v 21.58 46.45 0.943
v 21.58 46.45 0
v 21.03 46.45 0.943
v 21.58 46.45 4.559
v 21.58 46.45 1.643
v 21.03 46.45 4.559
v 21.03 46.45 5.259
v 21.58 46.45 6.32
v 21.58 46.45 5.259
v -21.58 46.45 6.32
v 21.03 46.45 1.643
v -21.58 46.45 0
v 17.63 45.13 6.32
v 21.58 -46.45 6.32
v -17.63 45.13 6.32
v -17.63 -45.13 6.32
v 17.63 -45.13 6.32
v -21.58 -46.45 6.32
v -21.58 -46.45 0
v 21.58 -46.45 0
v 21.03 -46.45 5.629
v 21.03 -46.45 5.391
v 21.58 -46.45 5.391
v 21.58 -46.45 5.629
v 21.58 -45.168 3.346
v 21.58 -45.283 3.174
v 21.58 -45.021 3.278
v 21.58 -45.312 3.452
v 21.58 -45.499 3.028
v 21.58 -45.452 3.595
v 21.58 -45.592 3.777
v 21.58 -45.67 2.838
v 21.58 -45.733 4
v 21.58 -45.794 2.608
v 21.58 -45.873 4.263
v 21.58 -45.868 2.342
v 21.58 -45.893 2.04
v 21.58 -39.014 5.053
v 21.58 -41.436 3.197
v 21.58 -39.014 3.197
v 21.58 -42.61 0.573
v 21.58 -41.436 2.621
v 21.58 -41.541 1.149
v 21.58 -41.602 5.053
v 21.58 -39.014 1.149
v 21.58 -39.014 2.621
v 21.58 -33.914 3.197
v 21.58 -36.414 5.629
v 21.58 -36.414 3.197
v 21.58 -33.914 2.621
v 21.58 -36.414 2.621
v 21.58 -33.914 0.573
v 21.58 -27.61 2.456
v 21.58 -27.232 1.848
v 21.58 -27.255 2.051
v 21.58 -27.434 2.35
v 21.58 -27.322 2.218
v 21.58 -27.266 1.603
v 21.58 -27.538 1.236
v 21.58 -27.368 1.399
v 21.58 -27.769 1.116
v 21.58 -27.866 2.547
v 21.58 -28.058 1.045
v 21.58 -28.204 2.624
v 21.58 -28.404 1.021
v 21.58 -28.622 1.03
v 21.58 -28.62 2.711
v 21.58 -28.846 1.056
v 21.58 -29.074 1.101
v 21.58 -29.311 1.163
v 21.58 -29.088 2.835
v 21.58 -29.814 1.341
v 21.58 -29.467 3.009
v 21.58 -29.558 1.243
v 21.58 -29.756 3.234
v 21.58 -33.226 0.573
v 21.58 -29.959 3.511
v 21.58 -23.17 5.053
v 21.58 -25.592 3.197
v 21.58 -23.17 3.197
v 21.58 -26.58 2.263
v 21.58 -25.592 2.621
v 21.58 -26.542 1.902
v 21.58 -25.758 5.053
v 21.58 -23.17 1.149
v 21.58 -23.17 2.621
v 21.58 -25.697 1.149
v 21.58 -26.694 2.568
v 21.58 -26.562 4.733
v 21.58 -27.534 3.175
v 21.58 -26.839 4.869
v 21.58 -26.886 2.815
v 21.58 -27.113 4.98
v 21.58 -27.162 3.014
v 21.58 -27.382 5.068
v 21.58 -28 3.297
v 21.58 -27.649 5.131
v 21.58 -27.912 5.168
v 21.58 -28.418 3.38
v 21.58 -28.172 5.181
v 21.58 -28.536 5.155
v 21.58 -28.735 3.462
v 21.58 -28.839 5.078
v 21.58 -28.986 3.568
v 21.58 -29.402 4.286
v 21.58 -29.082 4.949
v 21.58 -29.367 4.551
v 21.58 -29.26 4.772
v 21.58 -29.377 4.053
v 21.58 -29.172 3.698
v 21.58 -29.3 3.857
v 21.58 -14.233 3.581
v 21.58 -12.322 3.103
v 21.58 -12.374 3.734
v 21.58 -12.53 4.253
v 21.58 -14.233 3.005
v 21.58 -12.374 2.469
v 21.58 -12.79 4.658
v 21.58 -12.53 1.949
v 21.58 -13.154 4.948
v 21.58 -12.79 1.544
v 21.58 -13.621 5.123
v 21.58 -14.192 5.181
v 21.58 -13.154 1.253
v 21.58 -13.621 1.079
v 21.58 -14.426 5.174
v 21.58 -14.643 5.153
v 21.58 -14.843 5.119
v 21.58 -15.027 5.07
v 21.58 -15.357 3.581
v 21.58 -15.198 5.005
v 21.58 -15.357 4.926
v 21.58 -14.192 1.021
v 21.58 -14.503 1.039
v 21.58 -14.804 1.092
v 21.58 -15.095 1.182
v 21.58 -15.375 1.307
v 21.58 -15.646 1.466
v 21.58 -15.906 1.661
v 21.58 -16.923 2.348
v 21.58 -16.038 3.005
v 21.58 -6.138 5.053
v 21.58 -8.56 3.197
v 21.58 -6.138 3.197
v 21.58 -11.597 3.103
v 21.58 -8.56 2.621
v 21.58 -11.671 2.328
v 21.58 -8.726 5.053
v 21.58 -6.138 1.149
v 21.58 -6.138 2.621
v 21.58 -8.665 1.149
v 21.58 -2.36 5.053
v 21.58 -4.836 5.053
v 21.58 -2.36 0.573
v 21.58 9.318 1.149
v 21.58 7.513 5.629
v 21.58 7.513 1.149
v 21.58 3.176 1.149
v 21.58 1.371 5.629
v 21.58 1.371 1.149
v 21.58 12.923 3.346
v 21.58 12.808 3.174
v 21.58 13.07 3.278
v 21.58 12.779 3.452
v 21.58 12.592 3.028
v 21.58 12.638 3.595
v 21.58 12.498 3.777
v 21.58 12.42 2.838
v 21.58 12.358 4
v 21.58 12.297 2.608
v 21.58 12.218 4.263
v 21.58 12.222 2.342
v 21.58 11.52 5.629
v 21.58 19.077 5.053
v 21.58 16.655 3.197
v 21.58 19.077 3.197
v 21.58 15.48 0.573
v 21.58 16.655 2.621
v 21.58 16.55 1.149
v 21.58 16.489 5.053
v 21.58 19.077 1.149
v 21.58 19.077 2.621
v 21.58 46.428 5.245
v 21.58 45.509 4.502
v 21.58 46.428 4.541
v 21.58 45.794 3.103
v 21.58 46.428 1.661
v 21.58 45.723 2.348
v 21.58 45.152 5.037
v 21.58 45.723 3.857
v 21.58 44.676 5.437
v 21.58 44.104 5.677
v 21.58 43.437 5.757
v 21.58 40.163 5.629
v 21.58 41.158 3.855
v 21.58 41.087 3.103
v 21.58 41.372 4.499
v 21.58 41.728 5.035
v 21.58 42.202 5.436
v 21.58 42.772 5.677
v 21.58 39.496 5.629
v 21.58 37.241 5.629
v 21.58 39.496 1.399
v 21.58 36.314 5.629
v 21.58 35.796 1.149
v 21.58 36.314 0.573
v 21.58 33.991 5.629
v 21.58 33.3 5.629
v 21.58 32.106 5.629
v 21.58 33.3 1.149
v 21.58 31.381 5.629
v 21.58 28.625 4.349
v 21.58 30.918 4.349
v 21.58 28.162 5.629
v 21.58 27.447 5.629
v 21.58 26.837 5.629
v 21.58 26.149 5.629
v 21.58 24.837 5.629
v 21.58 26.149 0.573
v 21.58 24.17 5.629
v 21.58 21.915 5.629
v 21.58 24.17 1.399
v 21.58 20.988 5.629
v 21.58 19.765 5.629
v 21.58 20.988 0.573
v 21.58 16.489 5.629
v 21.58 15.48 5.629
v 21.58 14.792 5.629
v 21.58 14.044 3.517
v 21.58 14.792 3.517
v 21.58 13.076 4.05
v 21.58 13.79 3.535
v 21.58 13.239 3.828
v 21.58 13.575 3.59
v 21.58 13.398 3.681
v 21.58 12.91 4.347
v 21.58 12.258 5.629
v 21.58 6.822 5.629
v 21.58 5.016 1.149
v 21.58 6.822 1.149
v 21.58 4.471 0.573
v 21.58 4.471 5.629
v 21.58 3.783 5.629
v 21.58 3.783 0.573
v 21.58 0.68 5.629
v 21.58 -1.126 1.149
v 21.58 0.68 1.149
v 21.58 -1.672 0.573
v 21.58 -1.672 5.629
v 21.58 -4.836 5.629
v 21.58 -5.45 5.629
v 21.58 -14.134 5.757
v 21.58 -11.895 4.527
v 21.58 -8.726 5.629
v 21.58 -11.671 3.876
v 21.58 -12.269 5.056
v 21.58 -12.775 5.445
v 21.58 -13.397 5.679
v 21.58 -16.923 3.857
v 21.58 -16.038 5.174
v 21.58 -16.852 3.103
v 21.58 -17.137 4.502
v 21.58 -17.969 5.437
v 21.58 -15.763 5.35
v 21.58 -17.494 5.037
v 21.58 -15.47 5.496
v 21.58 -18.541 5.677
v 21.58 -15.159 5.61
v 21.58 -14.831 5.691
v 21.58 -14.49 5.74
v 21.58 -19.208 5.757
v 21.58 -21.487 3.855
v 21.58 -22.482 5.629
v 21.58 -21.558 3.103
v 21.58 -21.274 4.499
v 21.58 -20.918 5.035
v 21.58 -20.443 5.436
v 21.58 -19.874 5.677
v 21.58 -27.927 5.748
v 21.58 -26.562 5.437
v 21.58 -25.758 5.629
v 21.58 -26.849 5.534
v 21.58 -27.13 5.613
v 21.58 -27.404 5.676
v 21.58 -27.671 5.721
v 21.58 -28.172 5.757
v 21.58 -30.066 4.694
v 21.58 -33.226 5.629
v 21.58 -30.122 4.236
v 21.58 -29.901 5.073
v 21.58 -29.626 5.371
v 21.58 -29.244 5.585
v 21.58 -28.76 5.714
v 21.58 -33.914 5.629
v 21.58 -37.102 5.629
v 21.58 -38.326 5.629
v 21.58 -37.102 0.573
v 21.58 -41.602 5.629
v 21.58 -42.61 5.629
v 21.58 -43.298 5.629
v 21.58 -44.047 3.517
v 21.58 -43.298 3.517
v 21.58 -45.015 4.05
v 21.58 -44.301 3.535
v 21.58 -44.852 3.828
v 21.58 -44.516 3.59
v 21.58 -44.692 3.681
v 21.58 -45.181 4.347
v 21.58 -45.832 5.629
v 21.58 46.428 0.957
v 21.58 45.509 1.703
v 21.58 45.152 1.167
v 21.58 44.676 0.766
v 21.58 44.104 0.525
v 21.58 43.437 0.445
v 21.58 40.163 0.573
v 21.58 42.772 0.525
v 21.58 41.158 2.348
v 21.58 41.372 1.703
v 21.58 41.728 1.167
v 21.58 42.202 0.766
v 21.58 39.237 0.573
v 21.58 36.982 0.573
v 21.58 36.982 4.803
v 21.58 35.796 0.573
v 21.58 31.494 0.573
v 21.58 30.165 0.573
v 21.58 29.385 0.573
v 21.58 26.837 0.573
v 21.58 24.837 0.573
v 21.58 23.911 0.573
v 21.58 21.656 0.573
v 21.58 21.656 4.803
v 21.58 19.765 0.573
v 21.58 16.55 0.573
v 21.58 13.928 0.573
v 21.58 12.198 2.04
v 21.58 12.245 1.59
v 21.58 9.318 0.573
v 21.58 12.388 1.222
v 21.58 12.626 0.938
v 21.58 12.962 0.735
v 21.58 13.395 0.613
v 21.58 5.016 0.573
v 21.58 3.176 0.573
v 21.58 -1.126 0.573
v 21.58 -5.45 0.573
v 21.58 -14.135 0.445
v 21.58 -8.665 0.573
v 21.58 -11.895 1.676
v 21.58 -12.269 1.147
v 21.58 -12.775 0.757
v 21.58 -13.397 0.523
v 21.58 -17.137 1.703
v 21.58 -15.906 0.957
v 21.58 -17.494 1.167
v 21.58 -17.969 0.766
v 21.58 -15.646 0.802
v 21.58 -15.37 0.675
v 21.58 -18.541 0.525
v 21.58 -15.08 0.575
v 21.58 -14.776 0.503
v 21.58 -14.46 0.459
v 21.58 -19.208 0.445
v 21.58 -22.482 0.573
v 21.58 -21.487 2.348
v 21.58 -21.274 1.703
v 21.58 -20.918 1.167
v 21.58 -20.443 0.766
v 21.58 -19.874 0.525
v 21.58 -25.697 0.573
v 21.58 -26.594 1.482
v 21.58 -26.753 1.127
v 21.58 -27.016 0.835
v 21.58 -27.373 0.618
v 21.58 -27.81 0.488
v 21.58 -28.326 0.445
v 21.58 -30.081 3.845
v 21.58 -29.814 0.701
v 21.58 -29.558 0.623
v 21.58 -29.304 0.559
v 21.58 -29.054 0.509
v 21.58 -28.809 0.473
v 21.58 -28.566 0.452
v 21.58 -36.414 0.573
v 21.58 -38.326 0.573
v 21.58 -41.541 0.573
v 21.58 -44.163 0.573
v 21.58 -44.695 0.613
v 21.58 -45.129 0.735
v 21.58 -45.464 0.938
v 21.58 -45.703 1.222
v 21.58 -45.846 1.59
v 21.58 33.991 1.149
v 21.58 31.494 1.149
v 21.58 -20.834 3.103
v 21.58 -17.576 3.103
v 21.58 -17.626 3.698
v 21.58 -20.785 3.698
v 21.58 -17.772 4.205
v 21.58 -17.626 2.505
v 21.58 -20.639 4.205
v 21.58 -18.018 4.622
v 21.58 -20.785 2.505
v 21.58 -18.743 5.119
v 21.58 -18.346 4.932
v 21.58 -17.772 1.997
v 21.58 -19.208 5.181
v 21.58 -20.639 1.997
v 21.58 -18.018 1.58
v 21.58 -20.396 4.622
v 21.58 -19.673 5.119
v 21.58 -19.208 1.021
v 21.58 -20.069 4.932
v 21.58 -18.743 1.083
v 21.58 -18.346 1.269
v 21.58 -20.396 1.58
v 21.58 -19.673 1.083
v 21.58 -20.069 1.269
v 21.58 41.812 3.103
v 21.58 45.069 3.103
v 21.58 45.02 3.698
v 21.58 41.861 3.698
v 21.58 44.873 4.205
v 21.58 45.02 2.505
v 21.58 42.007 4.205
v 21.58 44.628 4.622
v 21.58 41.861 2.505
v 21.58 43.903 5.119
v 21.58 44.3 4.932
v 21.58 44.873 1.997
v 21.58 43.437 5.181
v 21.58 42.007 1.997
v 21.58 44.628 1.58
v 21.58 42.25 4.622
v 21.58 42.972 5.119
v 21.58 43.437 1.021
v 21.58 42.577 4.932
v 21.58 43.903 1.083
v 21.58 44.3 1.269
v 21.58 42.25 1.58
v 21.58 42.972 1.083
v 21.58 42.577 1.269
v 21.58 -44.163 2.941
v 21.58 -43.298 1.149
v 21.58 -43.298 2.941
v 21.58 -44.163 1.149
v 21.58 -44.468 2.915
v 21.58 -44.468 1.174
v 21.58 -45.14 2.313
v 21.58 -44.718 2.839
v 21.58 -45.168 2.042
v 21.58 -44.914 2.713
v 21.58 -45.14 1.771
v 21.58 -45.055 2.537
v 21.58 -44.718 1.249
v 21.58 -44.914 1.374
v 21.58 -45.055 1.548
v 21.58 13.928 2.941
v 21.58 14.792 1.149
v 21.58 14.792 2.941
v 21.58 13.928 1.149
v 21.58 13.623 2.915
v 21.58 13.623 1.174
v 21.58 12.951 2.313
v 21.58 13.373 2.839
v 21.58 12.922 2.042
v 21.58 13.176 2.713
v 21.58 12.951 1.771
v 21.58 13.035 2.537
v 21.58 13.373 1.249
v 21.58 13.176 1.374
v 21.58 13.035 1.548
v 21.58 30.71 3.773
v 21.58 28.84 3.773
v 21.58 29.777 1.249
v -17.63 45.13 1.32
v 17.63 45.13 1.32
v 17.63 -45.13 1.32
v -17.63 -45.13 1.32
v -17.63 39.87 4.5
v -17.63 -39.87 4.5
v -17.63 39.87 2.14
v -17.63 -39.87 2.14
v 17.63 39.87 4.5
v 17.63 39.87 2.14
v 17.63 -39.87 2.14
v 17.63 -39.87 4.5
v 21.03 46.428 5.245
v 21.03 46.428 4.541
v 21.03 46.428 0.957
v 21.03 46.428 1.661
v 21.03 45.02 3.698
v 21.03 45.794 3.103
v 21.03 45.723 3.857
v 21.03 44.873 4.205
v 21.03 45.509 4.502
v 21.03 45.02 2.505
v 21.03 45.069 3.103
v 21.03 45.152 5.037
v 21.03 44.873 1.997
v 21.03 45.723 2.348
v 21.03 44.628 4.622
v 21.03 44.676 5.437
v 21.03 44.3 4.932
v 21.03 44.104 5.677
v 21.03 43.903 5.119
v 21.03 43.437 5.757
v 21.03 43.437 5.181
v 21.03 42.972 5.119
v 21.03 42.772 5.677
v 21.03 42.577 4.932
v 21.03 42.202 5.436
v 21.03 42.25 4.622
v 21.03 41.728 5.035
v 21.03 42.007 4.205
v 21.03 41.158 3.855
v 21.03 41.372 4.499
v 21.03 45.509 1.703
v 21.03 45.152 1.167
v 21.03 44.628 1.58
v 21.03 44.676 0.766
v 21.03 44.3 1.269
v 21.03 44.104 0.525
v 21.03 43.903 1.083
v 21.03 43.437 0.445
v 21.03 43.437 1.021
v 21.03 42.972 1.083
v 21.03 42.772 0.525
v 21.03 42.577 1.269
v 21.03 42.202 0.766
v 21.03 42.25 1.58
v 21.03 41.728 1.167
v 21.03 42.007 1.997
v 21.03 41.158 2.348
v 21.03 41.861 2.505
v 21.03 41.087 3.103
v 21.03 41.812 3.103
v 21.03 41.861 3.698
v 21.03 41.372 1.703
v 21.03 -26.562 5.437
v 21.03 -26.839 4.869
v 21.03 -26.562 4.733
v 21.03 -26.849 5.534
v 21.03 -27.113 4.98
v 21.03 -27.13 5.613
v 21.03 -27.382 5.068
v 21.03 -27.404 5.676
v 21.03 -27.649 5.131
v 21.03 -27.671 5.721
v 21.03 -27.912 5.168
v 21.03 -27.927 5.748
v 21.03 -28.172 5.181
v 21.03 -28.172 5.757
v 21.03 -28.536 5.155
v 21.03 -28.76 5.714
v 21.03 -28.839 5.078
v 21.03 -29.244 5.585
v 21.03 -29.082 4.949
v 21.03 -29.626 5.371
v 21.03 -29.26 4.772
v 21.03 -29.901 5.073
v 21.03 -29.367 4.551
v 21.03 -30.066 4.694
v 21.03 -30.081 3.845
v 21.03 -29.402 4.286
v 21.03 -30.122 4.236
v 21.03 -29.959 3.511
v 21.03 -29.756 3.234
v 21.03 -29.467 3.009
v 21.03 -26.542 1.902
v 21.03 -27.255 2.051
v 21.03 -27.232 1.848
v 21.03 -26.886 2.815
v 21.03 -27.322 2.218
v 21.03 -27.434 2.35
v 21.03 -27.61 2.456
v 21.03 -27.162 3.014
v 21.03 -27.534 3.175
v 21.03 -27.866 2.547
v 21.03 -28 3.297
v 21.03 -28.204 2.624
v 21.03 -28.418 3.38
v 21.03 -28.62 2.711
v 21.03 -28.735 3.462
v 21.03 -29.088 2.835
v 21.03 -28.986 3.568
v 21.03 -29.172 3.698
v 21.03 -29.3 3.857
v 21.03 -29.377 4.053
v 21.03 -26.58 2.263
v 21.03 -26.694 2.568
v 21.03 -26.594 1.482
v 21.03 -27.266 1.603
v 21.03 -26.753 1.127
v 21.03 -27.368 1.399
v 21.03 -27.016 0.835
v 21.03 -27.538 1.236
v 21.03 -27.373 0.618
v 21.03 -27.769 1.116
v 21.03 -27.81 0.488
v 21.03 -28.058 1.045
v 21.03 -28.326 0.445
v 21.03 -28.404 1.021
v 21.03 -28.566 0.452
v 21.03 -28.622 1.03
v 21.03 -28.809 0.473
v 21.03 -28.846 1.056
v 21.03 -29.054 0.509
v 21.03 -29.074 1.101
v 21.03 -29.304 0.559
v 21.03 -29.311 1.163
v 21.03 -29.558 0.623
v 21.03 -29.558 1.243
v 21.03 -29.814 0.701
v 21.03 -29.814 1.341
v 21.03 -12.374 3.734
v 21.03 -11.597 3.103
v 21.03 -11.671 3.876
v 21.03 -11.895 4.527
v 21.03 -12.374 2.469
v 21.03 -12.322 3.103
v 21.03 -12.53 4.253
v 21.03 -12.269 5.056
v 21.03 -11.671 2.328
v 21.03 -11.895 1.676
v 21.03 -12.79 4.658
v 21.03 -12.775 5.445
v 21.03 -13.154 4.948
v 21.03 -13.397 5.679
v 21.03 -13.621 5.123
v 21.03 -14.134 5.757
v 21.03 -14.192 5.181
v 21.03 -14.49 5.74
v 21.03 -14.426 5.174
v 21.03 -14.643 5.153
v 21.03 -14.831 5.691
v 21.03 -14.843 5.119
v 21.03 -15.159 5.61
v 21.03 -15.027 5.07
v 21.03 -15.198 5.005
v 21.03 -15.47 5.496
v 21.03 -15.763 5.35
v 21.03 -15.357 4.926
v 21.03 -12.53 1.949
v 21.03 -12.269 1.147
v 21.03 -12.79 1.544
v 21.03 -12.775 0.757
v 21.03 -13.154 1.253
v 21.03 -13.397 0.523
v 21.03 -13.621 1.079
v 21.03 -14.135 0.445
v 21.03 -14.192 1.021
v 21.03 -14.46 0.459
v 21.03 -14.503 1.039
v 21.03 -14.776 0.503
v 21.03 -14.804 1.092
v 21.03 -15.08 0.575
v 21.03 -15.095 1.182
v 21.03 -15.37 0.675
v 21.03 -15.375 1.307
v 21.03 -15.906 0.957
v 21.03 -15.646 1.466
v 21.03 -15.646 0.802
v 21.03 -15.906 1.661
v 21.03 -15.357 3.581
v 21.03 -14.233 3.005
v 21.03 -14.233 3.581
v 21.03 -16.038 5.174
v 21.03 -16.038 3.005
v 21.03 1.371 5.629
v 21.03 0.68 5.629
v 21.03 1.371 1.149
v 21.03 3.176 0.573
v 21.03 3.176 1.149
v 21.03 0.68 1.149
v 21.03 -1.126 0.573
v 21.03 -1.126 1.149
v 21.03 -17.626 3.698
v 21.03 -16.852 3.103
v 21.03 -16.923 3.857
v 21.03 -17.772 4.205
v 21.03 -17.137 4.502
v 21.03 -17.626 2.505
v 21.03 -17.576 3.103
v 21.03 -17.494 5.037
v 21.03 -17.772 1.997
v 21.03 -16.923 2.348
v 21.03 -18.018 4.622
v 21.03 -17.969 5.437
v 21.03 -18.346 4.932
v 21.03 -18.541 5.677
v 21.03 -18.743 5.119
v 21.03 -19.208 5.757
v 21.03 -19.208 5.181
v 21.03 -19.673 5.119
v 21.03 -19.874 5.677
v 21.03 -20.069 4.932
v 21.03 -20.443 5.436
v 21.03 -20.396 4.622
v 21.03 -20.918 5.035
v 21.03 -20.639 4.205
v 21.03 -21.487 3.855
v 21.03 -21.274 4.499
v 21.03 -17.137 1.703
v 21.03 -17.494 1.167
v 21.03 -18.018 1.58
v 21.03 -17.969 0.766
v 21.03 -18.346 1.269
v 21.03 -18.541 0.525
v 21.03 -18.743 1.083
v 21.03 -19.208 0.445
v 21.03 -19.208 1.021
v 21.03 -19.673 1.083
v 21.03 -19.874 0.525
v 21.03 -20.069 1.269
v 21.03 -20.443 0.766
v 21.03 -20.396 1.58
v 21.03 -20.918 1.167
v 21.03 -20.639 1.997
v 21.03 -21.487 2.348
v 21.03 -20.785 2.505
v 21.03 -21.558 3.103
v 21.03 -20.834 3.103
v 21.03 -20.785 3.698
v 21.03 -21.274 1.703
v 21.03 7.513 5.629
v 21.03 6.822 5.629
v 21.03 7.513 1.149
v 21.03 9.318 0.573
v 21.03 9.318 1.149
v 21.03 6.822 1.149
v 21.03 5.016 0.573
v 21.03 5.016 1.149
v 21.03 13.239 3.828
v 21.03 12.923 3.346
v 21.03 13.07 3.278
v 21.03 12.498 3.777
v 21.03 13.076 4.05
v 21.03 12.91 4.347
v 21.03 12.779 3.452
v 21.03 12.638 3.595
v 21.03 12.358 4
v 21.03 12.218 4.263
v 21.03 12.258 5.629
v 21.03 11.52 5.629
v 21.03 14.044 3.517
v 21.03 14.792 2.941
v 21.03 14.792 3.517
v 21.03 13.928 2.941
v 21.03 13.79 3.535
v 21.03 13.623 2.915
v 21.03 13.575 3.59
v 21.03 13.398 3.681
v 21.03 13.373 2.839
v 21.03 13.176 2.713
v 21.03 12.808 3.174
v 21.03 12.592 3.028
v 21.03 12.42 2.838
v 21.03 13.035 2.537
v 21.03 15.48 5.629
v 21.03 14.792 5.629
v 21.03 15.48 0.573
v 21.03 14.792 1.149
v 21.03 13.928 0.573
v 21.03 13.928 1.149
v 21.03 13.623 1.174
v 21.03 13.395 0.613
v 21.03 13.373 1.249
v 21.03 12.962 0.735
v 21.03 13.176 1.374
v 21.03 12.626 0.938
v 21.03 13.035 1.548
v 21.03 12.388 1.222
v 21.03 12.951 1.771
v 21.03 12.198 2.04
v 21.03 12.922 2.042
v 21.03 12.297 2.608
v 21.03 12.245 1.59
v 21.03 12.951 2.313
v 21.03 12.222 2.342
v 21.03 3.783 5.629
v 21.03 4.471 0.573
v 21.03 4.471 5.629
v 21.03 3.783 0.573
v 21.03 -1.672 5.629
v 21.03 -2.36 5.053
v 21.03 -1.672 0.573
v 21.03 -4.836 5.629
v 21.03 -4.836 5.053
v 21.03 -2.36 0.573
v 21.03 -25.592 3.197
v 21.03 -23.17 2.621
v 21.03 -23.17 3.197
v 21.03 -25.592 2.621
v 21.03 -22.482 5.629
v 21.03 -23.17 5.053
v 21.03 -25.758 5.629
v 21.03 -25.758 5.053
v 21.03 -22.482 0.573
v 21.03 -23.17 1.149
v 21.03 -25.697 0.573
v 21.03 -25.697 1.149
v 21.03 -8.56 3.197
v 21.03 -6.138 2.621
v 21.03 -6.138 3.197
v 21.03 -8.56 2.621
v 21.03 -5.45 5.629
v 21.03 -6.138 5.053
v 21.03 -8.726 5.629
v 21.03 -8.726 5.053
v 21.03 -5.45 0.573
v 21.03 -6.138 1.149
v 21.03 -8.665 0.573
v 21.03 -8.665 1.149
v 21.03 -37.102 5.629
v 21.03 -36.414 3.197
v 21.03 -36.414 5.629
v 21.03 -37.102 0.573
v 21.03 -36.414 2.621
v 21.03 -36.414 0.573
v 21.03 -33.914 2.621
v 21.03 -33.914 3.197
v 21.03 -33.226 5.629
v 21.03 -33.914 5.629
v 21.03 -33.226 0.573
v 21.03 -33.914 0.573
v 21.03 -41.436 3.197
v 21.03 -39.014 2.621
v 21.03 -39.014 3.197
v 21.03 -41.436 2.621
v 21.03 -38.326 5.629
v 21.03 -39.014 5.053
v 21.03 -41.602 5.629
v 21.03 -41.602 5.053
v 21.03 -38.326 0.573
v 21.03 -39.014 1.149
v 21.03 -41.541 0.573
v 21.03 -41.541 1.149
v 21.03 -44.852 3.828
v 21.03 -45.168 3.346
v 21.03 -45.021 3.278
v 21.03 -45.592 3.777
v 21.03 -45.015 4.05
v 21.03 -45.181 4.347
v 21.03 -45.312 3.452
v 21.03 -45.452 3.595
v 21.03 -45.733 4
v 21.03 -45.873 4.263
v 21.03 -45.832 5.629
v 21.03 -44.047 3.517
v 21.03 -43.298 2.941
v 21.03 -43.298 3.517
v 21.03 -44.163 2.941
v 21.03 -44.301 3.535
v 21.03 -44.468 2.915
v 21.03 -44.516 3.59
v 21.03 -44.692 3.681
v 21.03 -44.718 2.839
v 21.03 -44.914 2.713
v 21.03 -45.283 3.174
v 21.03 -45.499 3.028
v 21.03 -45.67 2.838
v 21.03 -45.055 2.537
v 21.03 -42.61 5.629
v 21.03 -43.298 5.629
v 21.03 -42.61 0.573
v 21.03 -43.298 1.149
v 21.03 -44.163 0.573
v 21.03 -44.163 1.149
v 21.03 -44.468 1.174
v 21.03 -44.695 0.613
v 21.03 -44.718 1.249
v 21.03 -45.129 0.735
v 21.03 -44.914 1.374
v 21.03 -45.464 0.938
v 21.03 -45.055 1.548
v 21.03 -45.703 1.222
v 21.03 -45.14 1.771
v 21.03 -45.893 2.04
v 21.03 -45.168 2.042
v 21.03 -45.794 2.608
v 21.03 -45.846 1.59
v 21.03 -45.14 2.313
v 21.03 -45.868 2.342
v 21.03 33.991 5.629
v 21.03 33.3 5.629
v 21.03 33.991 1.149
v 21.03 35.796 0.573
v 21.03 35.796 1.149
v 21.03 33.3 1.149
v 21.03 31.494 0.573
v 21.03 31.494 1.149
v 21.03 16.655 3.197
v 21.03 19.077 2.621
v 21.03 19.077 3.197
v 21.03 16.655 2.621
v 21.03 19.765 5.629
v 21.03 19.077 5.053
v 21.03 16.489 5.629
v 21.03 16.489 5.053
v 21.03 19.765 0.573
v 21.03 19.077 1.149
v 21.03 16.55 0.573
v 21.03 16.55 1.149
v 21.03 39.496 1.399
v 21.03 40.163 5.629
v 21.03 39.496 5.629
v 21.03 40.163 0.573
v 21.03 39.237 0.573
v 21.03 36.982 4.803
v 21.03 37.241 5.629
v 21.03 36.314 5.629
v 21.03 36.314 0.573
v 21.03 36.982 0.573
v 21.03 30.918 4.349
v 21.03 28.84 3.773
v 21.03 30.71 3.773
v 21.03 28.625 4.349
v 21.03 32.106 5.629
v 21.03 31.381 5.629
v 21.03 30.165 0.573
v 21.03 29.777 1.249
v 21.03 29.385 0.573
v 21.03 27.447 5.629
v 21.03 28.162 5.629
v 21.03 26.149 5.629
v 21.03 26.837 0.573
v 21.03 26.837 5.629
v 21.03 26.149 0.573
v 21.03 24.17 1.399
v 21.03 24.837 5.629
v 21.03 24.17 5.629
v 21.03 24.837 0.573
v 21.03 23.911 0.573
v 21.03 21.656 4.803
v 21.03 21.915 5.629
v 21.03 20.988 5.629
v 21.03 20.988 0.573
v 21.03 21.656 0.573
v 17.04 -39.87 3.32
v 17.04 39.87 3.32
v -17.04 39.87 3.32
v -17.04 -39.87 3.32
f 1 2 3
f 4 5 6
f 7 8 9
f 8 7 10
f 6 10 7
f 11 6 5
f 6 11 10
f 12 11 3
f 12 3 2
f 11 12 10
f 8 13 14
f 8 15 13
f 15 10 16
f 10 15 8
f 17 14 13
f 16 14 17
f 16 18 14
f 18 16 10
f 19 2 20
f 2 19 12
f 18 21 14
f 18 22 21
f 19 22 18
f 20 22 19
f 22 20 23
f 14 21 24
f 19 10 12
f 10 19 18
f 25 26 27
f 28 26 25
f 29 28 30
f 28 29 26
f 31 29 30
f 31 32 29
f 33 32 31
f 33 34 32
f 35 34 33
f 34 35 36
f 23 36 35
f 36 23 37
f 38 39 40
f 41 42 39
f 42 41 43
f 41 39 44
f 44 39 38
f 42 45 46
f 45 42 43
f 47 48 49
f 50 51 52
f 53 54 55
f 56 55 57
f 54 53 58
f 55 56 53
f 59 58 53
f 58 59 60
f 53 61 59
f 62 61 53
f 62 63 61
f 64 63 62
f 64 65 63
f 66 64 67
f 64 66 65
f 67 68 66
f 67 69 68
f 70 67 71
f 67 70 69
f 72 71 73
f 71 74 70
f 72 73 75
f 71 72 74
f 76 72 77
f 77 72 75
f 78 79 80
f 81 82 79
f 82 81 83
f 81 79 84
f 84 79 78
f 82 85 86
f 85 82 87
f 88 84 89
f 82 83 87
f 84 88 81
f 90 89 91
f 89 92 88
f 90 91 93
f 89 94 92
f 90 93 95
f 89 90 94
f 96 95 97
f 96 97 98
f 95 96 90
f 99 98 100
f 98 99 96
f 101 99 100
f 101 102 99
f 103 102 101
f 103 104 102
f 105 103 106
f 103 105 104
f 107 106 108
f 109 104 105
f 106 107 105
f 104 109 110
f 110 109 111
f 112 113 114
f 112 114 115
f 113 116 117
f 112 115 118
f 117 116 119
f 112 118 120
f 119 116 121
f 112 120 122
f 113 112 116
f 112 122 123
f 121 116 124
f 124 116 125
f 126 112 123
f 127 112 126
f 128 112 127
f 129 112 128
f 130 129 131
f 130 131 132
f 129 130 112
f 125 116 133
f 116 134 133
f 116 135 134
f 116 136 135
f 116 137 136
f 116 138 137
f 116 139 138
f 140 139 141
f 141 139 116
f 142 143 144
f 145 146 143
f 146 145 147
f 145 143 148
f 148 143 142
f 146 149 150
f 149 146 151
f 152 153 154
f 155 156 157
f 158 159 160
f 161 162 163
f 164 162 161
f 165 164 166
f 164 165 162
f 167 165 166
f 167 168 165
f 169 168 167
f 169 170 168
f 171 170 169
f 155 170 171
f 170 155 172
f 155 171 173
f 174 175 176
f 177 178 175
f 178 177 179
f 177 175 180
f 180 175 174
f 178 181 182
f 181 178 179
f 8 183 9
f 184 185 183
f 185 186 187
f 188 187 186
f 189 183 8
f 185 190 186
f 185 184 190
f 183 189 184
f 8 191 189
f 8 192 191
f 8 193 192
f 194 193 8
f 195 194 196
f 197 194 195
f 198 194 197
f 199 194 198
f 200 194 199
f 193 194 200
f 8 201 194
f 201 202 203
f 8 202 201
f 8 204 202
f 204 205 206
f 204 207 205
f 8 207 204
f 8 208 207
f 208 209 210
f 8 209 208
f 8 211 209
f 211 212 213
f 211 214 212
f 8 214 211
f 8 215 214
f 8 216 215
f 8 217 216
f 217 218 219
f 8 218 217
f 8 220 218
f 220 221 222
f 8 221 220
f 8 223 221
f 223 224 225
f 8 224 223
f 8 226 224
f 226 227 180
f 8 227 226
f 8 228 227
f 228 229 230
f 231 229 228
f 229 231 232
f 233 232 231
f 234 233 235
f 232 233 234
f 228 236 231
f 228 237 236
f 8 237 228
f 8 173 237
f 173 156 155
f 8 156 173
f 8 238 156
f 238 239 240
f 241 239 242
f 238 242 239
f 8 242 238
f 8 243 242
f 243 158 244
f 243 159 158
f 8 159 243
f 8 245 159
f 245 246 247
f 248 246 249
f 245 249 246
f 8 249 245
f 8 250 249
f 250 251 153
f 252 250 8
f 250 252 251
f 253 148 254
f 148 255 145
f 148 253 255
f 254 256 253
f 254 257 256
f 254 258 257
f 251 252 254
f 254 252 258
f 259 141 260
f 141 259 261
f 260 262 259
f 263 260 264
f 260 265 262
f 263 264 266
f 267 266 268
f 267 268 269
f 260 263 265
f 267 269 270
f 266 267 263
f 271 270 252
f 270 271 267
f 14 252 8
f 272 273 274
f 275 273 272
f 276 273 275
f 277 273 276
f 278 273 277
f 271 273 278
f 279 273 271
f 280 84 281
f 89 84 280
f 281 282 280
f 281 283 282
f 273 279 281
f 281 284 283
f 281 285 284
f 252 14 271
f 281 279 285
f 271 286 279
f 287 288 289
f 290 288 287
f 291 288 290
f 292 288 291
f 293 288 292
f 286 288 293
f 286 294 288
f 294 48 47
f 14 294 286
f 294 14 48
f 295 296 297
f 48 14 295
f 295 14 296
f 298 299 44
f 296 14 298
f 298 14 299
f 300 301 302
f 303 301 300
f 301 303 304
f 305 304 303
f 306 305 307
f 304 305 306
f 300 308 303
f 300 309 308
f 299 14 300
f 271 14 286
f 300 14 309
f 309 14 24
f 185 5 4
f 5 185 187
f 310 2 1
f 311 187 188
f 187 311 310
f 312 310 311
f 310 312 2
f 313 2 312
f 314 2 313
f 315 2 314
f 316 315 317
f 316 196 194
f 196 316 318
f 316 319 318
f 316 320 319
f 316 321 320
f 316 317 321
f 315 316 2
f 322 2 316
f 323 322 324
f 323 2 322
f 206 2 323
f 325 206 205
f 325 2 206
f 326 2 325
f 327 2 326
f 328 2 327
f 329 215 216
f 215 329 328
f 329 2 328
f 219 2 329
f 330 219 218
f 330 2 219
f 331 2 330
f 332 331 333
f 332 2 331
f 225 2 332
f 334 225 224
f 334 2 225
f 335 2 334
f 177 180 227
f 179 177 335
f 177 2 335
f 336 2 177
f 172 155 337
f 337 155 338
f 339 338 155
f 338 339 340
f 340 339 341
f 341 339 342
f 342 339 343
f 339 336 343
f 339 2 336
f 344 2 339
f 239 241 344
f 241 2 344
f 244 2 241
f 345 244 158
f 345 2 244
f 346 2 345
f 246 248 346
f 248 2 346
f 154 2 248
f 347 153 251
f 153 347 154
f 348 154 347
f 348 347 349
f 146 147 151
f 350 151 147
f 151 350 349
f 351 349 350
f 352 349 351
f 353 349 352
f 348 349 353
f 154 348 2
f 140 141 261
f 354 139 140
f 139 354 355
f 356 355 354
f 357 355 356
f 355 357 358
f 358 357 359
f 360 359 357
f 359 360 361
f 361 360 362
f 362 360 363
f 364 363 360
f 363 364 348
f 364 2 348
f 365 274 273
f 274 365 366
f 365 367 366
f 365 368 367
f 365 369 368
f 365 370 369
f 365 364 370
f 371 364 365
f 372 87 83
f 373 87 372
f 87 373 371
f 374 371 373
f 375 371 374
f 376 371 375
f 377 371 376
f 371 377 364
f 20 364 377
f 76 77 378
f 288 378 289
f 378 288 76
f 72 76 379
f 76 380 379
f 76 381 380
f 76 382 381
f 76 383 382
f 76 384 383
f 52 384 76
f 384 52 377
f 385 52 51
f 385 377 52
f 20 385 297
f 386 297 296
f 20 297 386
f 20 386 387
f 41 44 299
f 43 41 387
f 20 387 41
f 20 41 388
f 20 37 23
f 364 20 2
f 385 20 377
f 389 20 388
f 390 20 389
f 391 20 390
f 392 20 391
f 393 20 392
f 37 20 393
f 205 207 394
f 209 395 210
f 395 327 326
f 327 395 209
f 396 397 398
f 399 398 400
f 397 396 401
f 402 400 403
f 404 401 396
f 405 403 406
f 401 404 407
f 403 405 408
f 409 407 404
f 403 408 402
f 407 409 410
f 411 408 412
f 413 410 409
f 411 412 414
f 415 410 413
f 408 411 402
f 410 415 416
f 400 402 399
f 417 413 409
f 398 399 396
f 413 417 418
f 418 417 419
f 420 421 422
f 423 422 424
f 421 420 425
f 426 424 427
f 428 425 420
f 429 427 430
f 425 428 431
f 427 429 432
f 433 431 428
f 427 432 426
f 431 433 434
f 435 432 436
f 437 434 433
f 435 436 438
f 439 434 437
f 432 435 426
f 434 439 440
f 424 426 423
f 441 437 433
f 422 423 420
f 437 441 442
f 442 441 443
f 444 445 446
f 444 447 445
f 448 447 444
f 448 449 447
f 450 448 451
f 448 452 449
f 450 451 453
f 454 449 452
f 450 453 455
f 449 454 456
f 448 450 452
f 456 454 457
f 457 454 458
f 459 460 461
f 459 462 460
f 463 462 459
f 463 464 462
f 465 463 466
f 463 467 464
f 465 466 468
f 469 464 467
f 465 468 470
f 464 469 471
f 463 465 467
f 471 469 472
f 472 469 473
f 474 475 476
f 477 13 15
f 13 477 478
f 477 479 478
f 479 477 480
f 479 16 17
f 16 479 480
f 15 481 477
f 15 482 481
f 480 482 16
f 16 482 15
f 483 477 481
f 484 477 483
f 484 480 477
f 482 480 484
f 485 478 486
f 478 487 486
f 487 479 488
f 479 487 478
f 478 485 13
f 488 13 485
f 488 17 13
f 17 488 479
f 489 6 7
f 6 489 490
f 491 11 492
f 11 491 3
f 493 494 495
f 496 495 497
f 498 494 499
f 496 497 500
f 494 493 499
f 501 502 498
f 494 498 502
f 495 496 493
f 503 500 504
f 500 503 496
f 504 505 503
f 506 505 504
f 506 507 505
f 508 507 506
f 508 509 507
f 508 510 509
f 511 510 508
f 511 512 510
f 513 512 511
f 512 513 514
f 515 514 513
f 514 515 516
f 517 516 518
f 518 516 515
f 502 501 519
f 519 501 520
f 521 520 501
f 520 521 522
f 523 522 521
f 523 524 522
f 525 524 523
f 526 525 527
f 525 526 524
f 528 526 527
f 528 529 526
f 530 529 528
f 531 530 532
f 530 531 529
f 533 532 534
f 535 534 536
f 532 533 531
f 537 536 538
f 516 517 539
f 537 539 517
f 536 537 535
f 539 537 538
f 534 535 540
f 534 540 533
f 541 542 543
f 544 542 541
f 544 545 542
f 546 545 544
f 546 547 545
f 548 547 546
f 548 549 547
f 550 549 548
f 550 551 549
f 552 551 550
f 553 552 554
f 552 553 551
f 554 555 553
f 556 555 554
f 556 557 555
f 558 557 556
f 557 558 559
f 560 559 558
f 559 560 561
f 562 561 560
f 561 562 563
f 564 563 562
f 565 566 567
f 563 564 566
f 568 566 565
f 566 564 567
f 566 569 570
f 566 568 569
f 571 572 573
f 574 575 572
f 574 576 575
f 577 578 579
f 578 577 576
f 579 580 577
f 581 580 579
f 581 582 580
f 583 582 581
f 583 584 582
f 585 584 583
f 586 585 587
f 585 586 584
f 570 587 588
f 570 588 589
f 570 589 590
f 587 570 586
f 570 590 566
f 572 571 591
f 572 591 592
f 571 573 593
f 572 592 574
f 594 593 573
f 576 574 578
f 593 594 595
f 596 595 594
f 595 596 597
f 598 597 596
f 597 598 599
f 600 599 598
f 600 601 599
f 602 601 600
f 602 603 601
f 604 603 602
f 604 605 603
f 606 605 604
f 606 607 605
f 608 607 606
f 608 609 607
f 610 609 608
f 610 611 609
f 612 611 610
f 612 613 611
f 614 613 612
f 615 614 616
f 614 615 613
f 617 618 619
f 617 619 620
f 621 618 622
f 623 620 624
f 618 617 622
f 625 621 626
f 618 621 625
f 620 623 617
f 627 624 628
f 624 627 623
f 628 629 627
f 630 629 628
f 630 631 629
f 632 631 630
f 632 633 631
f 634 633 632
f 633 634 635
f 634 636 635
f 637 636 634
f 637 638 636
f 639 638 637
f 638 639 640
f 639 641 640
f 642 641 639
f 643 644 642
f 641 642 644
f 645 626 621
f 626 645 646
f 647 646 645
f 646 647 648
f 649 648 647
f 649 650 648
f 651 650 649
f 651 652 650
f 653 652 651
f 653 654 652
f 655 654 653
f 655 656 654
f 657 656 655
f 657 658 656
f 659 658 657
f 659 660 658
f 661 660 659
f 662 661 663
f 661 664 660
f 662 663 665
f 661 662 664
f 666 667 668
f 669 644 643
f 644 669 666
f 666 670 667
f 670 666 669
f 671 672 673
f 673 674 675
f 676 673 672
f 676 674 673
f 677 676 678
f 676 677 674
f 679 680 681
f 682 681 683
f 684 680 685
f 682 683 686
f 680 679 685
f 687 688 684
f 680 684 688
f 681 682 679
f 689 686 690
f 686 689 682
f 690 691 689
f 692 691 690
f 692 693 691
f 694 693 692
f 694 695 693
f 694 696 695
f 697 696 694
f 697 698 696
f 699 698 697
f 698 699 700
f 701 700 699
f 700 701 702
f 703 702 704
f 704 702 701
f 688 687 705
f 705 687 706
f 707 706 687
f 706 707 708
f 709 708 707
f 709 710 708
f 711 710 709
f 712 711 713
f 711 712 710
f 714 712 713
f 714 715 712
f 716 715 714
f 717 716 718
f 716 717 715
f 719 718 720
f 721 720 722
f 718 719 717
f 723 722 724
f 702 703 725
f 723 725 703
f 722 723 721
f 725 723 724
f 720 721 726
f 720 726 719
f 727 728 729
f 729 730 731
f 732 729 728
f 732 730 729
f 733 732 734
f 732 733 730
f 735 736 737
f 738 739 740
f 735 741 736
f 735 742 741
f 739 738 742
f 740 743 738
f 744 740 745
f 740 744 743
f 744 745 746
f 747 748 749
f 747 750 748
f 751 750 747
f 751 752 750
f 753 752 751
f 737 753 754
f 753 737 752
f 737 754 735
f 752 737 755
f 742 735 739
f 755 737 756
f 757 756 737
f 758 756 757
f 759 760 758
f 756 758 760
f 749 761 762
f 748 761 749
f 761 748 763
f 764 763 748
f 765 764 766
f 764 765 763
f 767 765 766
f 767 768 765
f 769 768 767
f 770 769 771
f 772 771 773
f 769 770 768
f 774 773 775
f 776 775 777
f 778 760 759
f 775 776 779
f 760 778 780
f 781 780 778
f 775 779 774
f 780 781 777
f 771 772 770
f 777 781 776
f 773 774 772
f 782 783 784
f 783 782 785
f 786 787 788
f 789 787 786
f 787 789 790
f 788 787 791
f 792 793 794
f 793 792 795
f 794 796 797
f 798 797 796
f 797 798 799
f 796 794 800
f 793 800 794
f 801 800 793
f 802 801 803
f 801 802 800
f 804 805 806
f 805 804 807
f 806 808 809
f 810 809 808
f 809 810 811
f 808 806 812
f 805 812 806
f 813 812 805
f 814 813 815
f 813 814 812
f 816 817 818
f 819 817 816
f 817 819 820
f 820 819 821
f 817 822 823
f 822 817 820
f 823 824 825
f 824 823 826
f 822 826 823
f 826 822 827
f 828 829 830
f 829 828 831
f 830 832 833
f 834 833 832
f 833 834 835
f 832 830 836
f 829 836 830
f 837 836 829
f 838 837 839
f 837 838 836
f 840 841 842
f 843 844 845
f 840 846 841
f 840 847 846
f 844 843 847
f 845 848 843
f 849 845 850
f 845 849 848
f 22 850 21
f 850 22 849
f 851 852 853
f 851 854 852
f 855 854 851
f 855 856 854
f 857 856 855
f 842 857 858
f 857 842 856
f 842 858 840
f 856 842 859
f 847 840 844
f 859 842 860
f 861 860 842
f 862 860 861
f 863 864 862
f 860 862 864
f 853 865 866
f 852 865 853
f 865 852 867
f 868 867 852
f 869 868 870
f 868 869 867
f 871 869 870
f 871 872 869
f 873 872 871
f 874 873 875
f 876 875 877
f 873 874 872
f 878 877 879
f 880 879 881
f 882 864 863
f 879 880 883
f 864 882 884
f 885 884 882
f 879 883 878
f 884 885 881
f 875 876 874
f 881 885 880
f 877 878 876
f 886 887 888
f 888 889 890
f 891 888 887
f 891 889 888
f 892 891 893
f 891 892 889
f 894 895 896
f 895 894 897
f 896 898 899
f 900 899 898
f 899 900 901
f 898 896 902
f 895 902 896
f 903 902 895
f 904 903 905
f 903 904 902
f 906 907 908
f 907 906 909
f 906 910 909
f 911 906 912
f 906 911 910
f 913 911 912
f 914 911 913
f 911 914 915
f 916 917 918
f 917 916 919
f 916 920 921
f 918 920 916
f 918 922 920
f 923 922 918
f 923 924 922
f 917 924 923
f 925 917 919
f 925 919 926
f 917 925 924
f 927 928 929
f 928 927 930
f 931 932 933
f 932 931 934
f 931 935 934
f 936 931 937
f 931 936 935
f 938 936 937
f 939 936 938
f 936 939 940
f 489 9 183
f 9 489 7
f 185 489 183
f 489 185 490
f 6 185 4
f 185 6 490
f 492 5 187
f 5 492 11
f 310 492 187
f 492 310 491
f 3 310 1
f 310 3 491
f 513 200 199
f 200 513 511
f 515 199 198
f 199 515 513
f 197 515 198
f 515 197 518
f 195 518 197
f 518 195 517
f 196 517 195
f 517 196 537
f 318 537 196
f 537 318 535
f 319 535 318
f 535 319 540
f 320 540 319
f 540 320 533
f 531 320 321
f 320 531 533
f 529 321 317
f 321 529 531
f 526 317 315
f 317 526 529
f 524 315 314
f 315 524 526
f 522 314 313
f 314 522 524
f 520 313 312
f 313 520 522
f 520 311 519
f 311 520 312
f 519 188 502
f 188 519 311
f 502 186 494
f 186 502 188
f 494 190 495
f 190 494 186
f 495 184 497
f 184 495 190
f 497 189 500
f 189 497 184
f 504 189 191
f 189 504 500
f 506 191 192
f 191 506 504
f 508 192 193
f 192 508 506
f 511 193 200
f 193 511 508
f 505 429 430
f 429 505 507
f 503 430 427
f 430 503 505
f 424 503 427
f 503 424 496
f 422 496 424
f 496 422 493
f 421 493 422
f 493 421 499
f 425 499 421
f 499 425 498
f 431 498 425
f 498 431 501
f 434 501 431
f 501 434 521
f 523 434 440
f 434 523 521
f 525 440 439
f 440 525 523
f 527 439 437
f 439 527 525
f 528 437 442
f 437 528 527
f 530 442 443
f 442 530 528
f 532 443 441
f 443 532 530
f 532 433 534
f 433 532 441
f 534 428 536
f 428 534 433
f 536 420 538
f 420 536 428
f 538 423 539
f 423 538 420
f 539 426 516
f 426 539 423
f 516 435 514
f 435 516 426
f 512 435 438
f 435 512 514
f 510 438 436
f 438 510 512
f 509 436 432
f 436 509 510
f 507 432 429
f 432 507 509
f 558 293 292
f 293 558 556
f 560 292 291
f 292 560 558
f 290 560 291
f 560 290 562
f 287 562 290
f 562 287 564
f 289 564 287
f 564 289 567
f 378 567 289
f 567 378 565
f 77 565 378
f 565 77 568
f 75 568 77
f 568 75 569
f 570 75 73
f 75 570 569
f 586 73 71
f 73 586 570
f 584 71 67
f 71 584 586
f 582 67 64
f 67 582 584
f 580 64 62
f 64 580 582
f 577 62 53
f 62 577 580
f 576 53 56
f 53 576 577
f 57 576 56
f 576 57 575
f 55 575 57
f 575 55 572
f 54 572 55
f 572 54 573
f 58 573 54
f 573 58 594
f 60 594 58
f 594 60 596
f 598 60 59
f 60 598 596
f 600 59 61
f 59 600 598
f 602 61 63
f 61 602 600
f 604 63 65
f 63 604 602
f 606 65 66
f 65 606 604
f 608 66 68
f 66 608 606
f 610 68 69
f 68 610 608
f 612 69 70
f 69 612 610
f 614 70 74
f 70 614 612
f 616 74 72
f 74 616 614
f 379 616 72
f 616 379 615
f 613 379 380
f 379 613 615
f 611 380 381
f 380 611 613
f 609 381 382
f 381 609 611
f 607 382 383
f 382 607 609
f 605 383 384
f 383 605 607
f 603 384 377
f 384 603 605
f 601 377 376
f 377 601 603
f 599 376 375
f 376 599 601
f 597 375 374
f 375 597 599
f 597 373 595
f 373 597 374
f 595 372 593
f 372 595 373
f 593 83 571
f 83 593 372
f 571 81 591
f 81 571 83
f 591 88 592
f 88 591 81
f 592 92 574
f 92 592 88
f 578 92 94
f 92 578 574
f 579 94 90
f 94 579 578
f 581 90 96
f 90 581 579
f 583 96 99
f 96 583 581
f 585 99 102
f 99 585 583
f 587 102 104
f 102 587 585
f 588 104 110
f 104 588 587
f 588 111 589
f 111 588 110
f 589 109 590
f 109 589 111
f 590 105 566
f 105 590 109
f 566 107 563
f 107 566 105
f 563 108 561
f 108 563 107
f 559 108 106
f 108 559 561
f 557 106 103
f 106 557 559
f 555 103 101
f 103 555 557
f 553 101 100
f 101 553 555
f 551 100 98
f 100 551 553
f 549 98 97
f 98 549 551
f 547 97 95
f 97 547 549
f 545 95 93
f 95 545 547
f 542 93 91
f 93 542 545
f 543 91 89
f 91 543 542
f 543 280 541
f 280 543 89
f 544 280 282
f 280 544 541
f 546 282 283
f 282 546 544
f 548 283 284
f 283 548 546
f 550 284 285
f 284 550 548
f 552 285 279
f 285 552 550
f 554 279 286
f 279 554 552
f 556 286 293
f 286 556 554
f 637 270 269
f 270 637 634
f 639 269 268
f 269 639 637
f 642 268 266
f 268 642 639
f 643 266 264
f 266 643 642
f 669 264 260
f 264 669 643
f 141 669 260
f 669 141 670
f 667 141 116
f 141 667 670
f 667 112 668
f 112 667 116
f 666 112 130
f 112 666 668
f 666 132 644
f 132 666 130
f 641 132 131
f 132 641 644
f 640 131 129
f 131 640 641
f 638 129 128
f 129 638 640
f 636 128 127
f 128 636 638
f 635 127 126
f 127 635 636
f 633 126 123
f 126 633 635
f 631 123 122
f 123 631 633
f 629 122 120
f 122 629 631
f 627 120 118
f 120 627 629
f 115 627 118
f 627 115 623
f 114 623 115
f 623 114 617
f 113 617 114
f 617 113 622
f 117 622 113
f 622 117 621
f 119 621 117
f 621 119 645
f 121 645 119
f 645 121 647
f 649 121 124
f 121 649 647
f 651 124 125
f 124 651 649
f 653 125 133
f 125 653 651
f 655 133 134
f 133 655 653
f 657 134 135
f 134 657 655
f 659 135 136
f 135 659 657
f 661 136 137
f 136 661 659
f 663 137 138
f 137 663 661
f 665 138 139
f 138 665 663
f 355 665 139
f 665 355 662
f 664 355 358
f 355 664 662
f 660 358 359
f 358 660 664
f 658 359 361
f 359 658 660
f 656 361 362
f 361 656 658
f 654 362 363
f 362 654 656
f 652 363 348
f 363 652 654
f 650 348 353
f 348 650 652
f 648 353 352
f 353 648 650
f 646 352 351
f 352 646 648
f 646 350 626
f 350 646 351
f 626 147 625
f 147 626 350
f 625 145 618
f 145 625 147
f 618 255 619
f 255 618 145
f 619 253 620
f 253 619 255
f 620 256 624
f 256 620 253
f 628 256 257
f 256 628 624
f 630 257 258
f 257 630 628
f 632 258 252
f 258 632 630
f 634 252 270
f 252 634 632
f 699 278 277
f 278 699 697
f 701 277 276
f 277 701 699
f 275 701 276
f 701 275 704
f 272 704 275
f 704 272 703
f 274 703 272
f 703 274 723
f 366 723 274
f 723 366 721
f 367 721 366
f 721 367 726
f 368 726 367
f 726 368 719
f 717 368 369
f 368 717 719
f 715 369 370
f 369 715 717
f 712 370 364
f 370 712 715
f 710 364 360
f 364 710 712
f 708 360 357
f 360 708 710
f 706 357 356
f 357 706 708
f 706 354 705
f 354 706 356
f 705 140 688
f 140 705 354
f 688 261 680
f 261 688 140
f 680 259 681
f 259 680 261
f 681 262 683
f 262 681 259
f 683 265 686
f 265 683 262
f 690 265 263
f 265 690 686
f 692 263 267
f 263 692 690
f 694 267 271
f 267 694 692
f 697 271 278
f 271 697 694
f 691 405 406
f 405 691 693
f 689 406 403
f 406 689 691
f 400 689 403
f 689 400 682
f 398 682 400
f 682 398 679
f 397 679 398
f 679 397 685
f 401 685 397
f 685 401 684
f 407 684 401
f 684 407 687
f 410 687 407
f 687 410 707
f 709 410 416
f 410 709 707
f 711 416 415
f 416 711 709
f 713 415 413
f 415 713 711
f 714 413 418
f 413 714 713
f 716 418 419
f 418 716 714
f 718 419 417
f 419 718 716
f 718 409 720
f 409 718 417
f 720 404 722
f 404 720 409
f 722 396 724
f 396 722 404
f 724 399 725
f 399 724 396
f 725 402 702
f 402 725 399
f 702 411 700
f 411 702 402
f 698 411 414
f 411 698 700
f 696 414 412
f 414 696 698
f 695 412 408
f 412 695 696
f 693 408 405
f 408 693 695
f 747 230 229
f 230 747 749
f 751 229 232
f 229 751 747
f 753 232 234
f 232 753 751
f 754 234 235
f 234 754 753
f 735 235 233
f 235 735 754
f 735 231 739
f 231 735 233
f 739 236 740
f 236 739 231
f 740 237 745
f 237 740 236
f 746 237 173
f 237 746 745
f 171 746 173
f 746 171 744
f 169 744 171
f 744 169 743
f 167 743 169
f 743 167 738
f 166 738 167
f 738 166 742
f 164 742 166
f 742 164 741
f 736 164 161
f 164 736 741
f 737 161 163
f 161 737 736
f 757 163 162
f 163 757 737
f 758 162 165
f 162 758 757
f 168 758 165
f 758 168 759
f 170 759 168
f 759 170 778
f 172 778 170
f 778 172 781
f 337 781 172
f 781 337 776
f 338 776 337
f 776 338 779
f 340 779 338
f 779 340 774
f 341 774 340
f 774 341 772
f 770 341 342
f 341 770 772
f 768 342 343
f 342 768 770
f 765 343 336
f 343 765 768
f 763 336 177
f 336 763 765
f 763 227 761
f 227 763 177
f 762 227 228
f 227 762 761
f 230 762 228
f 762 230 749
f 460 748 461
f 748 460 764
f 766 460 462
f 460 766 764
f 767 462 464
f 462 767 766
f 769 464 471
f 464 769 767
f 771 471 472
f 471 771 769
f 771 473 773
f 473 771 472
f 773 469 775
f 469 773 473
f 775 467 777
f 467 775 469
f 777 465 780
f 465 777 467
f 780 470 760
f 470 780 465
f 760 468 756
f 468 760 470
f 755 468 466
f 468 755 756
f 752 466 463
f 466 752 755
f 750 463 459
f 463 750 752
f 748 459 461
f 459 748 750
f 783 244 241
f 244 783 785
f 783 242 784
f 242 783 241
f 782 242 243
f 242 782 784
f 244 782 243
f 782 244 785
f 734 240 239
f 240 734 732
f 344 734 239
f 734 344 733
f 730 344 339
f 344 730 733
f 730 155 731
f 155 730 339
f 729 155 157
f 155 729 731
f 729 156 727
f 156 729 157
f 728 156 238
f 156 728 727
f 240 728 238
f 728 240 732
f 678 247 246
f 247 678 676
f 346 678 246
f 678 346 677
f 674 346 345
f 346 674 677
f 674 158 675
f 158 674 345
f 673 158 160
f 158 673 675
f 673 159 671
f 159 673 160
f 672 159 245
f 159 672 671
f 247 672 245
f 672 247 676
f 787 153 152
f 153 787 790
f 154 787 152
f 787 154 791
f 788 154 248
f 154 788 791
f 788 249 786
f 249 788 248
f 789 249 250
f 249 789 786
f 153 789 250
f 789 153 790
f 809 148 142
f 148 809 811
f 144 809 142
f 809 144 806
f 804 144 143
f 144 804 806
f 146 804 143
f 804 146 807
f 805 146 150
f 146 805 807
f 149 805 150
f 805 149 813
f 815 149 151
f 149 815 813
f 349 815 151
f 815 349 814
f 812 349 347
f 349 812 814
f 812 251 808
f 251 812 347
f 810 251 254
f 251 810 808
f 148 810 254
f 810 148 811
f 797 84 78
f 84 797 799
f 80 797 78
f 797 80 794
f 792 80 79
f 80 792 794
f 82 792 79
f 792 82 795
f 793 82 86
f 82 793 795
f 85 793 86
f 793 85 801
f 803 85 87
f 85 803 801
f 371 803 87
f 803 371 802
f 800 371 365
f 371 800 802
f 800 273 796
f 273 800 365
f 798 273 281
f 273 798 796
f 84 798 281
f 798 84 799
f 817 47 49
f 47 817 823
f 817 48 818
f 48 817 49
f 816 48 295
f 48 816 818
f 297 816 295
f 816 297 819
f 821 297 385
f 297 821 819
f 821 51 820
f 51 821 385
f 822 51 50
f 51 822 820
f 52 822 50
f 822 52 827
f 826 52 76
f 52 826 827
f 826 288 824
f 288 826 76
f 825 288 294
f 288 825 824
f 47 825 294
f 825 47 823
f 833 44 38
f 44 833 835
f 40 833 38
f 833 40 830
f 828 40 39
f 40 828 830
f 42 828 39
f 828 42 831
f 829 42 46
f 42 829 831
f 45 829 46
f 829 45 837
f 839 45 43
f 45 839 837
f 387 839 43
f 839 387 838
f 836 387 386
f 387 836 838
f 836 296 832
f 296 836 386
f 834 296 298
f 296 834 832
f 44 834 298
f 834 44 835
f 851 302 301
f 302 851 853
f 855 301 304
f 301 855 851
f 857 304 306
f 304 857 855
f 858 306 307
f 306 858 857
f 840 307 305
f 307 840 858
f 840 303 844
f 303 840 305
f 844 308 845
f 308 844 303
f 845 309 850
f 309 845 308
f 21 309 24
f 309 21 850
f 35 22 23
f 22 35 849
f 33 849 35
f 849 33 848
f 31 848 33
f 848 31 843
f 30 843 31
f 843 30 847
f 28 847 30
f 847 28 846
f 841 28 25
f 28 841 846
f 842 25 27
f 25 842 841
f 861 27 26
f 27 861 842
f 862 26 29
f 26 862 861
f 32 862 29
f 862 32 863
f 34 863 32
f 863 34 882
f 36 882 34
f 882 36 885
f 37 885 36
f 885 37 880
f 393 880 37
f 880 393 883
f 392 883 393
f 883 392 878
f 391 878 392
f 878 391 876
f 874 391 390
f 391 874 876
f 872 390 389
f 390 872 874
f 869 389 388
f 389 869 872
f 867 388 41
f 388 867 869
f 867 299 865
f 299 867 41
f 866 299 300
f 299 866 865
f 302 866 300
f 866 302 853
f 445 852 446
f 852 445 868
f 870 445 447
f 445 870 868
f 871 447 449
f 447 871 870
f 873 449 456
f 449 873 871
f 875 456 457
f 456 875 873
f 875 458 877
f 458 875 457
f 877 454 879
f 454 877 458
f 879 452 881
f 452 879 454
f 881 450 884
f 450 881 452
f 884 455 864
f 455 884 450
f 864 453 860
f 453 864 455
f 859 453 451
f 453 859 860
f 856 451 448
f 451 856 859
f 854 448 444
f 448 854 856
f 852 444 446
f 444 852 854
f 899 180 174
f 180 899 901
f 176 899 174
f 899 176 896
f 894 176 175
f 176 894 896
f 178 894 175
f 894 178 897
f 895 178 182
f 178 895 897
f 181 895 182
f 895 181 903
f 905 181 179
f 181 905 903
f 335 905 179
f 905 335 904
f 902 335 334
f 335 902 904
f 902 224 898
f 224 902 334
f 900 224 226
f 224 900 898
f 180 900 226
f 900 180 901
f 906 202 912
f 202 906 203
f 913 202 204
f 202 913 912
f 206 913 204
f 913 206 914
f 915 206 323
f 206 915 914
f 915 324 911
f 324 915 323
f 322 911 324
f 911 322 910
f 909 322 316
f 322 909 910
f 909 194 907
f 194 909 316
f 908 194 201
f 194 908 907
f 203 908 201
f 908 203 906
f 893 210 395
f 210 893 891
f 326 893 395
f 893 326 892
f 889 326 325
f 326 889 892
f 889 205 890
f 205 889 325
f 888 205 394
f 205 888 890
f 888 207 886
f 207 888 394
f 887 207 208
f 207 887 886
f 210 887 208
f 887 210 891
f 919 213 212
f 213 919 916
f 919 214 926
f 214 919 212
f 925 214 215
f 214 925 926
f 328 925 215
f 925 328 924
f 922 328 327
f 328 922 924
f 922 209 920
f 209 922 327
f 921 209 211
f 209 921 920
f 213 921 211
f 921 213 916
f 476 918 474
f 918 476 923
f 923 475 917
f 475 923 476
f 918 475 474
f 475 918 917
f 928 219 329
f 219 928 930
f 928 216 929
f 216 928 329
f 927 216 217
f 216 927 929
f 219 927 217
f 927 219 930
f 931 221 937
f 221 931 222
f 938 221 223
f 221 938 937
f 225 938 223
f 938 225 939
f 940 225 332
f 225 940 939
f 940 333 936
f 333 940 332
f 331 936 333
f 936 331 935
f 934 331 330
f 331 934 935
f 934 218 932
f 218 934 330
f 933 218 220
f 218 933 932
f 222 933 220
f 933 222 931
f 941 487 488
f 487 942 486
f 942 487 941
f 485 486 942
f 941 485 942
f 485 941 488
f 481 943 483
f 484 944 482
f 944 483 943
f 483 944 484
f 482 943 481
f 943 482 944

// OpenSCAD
container_width = 85;
container_depth = 30;

title = "CONTAINER TITLE GOES HERE";
title_embed = 0.55;

inner_height = 1.32;
width_outer_size = 1.32;
depth_outer_size = 3.95;

width = 85 + 2.63 * 2 + width_outer_size * 2;
depth = container_depth / 2.0 * 2 + 2.63 * 2 + depth_outer_size * 2;
height = 5 + inner_height;

tip_size = 1.2;
tip_height = 0.6;
tip_extrude_size = 85 - 2.63 * 2;

close_tip_offset = 2.0;

module tip(tip_size_difference = 0.0, tip_height_difference = 0.0, size_difference = 0.0, tip_extrude = tip_extrude_size) {
  rotate([90, 0, 0])
    linear_extrude(height = tip_extrude - size_difference, center=true) {
      polygon(points=[
        [-tip_size + tip_size_difference, 0],
        [0, tip_height - tip_height_difference],
        [tip_size - tip_size_difference, 0]
      ]);
    };
}

color(c = [0.6, 0.6, 0.6])
  render()
  translate([0, 0, height / 2.0])
  rotate([0, 0, 90])
  union() {
    difference() {
      cube([width, depth, height], center = true);
      translate([0, 0, inner_height])
      cube([width - width_outer_size * 2, depth - depth_outer_size * 2, height], center = true);

      translate([0, -depth / 2.0, 0])
        rotate([90, 180, 0])
        linear_extrude(height = title_embed * 2.0, center = true) {
          text(title, font="Calibri", size = 5, halign="center", valign="center");
        };
    };

    translate([0, -depth / 2.0 + depth_outer_size - 0.01, -height / 2.0 + inner_height + close_tip_offset])
      rotate([0, 90, 90])
      tip();

    translate([0, depth / 2.0 - depth_outer_size + 0.01, -height / 2.0 + inner_height + close_tip_offset])
      rotate([0, 90, 270])
      tip();
  };
